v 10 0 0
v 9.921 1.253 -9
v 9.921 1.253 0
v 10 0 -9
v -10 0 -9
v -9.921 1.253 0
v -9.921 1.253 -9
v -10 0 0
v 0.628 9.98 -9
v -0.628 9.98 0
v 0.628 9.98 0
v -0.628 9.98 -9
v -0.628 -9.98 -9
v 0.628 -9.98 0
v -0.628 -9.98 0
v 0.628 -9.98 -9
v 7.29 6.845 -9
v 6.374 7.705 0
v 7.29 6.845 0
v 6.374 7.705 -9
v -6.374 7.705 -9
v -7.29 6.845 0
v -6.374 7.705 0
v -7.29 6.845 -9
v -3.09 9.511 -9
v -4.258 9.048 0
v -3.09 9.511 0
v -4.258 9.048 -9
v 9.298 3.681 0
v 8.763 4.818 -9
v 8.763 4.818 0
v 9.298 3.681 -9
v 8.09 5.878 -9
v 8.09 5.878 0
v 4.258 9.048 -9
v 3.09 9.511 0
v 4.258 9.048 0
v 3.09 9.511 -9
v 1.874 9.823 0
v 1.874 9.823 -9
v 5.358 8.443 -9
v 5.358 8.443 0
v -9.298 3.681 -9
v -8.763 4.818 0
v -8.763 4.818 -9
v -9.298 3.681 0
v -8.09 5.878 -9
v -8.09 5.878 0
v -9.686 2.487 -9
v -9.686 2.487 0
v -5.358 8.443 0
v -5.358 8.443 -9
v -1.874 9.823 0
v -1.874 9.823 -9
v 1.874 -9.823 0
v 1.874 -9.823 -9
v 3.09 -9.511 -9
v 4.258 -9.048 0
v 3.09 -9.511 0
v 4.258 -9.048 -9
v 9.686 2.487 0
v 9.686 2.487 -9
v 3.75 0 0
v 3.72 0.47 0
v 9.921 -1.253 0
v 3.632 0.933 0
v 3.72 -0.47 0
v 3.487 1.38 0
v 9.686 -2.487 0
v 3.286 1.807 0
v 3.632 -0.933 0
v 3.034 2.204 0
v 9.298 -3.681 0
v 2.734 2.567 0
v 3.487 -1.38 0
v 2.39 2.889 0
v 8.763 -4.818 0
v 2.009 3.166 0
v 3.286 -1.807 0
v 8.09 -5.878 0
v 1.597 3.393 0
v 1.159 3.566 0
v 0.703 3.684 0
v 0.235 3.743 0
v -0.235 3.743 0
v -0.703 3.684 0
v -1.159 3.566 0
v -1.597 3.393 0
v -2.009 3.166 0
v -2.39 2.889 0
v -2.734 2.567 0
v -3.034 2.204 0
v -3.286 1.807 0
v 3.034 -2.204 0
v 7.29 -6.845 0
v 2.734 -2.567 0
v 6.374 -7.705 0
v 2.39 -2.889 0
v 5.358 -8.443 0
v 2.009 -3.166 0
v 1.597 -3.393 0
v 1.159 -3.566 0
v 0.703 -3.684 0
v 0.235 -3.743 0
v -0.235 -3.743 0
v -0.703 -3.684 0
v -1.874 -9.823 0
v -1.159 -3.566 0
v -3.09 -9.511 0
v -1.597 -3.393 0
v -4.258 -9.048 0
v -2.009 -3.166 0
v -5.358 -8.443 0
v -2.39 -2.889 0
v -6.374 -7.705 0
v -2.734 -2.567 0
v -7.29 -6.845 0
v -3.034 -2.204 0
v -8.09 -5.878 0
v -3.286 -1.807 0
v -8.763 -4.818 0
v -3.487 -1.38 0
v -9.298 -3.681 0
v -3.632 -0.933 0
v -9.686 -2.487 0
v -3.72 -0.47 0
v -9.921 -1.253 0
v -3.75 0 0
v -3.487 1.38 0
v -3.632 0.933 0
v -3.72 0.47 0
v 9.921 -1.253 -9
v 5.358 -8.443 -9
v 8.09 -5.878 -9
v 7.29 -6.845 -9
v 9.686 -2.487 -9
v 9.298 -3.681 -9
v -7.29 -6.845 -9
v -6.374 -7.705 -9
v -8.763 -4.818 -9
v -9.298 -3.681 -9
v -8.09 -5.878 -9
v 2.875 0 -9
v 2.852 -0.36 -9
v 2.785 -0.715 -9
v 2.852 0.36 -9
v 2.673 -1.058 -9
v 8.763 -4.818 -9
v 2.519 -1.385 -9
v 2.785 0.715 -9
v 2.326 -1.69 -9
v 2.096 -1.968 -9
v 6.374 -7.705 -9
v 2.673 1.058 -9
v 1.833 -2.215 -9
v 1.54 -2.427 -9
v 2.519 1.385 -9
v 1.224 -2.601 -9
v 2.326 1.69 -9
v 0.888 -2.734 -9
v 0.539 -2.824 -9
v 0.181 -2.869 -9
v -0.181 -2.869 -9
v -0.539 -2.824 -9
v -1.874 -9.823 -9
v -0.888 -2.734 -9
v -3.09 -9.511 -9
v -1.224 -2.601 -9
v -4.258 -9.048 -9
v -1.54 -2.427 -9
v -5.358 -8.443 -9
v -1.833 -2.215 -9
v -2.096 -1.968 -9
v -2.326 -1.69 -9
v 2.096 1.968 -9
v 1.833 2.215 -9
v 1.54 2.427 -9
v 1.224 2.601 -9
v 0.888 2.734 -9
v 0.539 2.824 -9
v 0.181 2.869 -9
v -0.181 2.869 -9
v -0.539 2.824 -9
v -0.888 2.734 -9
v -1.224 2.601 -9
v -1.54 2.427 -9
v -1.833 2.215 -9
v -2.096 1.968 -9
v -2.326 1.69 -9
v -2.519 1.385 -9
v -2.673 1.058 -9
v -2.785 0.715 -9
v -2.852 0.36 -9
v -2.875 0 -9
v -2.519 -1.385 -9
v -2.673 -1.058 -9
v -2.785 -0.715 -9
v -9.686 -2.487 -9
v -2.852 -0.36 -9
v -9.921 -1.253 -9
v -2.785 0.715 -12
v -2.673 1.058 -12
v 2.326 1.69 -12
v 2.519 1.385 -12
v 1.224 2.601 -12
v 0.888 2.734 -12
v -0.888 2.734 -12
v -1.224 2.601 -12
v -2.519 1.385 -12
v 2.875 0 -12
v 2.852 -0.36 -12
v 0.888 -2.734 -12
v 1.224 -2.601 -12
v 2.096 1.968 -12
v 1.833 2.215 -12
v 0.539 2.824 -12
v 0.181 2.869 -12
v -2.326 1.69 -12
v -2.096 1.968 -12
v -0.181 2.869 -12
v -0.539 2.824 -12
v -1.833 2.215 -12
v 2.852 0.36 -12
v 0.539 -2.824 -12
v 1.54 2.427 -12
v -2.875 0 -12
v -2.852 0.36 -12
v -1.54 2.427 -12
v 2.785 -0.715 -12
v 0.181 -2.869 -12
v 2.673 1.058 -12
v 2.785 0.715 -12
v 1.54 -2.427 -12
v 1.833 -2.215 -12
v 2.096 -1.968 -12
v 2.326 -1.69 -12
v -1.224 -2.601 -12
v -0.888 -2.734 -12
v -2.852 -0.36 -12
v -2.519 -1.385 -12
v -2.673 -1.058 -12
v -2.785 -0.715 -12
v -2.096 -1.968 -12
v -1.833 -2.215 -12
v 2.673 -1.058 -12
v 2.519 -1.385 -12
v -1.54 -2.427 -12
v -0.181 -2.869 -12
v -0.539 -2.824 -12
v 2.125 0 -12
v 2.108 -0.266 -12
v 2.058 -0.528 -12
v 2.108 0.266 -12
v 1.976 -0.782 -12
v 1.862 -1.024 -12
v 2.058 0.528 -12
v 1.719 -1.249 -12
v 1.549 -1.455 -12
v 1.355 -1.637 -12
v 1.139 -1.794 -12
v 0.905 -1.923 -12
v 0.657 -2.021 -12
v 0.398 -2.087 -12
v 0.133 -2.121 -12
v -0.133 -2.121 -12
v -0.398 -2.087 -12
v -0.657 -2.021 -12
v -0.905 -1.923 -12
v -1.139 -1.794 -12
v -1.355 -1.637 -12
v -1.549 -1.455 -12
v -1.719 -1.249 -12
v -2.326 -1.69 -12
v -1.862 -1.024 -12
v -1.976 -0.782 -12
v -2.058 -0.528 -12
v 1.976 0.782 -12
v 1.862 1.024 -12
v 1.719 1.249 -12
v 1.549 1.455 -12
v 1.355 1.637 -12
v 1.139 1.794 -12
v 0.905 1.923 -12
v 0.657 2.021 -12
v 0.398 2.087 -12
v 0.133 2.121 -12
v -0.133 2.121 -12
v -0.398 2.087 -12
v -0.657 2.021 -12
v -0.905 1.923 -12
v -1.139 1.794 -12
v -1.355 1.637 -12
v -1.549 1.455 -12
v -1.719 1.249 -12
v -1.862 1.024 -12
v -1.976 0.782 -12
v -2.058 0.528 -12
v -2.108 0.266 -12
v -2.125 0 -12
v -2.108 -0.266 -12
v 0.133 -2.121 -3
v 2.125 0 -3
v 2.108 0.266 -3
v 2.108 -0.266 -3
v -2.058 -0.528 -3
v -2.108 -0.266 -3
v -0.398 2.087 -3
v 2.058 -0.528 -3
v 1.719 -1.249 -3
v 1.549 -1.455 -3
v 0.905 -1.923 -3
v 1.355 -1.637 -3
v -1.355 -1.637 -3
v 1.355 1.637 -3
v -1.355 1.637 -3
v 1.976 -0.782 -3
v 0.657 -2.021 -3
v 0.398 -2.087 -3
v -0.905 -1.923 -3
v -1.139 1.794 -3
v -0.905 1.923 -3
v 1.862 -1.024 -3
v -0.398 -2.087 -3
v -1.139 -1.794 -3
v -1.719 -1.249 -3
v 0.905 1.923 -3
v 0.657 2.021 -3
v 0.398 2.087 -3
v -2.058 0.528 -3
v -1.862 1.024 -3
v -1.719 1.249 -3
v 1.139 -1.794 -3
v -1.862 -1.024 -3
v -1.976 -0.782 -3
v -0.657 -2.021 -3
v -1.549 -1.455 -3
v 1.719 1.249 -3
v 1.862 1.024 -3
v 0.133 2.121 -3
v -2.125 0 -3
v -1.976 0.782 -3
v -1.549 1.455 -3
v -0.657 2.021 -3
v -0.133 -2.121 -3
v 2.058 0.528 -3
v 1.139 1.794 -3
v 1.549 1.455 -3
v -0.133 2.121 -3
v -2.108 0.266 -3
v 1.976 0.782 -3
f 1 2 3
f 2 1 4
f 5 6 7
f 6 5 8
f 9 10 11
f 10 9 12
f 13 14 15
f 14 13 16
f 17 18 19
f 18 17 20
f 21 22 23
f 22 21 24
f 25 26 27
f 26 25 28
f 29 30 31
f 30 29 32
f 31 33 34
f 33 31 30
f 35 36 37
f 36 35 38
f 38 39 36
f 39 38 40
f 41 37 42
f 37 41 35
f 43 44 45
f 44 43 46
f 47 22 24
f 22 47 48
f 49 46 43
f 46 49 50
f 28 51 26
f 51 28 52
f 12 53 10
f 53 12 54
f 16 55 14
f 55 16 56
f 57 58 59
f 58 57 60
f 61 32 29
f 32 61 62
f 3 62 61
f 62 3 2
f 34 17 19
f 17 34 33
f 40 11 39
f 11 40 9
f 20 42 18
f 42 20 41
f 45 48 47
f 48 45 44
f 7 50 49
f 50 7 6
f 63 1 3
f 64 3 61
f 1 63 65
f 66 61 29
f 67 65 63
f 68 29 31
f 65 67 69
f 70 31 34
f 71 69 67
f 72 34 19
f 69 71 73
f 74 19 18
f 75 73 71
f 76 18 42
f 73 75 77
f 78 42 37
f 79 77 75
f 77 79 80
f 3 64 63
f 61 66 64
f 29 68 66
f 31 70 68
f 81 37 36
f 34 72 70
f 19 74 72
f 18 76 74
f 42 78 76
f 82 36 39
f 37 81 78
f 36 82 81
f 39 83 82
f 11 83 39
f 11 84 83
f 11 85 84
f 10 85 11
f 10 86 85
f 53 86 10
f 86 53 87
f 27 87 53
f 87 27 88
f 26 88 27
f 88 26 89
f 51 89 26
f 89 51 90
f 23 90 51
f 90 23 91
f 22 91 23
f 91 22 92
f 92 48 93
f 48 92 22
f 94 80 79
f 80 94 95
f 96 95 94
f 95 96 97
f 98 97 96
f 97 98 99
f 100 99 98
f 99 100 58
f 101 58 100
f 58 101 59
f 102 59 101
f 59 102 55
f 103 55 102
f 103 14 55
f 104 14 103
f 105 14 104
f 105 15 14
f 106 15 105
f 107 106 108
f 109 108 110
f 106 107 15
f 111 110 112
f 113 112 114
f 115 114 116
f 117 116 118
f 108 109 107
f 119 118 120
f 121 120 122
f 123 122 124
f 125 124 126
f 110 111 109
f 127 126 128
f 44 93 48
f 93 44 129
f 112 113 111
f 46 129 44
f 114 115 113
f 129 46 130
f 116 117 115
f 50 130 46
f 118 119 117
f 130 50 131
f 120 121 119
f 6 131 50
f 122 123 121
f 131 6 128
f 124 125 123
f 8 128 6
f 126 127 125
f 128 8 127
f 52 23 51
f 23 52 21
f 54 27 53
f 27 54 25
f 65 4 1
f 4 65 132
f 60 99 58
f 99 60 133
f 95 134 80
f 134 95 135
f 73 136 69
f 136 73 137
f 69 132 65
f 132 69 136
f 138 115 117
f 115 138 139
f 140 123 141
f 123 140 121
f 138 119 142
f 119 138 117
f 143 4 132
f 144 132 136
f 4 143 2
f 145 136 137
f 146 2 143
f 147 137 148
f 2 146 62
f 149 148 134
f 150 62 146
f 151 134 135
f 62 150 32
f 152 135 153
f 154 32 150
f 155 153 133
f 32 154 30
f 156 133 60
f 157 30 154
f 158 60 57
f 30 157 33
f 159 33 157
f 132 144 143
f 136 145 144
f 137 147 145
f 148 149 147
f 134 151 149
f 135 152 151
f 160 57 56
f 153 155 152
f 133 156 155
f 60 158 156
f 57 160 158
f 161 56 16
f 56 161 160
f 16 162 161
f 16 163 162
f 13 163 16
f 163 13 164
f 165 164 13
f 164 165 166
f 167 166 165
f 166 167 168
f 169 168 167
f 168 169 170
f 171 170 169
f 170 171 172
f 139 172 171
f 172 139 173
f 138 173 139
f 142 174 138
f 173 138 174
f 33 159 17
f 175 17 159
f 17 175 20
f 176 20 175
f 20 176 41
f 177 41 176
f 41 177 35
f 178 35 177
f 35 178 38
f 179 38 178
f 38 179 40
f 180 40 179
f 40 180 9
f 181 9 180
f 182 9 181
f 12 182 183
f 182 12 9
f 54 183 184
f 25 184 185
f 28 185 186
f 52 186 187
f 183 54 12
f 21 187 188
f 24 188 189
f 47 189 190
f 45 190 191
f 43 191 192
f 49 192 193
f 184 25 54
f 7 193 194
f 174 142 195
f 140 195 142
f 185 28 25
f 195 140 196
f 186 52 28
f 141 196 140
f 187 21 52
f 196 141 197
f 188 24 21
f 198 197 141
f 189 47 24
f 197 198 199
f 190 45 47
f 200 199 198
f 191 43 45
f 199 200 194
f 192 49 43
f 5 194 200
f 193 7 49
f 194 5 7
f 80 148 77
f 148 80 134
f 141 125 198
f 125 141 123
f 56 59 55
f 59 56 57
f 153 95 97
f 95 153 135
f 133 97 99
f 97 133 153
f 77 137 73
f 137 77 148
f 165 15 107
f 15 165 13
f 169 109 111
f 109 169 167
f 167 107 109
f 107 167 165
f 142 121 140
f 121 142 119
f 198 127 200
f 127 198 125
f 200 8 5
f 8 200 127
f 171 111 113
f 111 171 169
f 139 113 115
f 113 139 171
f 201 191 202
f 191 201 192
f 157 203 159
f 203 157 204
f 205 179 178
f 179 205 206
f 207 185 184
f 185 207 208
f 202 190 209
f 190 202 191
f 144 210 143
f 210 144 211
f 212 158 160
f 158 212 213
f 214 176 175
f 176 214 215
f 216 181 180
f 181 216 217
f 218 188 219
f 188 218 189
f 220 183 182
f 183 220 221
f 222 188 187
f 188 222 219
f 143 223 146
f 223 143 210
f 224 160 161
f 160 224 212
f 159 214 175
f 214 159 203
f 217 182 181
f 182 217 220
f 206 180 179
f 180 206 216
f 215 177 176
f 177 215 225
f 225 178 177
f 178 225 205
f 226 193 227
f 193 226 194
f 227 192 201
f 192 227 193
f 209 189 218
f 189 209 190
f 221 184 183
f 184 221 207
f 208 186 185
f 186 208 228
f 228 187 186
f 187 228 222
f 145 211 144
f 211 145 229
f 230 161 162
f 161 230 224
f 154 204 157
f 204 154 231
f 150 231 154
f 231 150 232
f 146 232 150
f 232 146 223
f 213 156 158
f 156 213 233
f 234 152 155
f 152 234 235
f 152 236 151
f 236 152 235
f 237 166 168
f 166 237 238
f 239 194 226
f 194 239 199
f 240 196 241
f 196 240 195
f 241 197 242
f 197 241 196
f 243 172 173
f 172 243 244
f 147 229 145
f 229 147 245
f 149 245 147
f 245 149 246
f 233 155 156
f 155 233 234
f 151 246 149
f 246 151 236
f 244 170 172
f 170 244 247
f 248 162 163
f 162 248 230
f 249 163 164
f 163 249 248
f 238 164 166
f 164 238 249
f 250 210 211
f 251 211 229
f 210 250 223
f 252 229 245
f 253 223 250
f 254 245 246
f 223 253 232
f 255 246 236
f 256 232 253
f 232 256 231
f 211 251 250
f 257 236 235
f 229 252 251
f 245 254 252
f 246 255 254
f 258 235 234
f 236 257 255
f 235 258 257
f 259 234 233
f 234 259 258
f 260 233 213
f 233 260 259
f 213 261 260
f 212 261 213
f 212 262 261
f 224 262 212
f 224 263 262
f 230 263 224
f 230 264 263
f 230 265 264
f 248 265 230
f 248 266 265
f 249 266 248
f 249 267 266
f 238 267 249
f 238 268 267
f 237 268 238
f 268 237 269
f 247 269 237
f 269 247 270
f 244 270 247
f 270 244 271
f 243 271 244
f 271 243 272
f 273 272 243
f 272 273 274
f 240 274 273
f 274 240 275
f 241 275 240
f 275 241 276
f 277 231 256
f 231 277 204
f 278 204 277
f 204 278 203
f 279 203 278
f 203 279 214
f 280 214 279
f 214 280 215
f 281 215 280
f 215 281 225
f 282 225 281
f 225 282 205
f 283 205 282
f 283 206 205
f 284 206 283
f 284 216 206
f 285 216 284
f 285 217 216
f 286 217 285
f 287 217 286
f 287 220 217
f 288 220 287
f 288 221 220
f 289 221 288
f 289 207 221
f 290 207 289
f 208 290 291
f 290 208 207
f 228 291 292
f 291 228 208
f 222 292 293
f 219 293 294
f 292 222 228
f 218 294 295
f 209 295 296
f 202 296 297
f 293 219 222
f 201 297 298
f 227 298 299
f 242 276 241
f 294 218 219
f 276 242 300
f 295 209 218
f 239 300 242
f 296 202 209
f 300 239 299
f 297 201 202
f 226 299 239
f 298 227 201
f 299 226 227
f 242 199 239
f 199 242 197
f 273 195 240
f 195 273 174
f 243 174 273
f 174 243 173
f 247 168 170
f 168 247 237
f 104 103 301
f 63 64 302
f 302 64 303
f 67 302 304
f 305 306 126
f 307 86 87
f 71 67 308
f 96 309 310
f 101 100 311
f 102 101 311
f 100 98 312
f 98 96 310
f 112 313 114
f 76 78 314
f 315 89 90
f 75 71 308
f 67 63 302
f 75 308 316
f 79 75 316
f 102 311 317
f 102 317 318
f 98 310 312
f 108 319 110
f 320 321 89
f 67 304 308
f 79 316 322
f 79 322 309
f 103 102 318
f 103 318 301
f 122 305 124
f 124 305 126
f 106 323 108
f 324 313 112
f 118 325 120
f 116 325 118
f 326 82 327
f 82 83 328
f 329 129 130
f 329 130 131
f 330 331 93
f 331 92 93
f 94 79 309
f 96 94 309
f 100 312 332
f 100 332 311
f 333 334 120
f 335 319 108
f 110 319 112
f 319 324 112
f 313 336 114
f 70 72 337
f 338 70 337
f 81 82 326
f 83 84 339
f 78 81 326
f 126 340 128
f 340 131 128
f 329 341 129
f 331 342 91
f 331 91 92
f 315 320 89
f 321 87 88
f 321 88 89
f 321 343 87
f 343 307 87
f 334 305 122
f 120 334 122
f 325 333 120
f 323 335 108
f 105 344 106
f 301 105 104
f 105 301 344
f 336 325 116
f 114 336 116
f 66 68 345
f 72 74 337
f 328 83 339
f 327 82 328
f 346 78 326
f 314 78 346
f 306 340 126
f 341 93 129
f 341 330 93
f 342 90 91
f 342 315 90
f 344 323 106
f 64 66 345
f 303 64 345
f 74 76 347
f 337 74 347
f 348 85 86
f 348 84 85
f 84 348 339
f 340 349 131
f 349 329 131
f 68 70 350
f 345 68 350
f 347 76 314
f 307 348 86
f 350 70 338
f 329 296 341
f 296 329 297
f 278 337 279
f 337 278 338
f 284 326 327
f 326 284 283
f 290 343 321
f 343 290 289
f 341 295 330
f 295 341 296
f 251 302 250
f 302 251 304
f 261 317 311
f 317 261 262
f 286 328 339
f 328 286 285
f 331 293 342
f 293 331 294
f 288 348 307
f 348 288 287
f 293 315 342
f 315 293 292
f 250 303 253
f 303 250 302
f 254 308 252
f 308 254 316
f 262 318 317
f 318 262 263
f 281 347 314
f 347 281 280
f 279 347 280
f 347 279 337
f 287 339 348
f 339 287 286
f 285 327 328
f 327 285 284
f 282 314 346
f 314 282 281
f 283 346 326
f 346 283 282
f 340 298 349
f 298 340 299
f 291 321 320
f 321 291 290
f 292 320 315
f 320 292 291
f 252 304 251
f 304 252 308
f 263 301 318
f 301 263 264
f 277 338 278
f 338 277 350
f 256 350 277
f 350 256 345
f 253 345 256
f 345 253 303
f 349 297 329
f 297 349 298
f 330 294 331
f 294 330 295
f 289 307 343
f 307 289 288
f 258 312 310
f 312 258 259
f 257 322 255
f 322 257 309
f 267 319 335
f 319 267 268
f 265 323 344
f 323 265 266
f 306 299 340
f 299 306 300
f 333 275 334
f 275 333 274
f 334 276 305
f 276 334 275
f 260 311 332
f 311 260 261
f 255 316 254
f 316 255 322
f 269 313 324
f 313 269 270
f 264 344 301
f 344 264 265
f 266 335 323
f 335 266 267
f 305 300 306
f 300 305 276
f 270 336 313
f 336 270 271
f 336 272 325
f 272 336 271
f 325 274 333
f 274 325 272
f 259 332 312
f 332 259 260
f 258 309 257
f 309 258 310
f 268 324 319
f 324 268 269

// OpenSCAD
$fn = 50;

difference() {
	union() {
		translate(v = [0, 0, -9.0]) {
			cylinder(h = 9, r = 10.0);
		}
		#translate(v = [0, 0, -12.0]) {
			cylinder(h = 12, r = 2.875);
		}
	}
	union() {
		translate(v = [0, 0, 0]) {
			rotate(a = [0, 0, 0]) {
				difference() {
					union() {
						translate(v = [0, 0, -12.0]) {
							cylinder(h = 12, r = 2.0);
						}
						translate(v = [0, 0, -3]) {
							cylinder(h = 3, r1 = 2.125, r2 = 3.75);
						}
						translate(v = [0, 0, -12.0]) {
							cylinder(h = 12, r = 2.125);
						}
						translate(v = [0, 0, -12.0]) {
							cylinder(h = 12, r = 2.0);
						}
					}
					union();
				}
			}
		}
	}
}
